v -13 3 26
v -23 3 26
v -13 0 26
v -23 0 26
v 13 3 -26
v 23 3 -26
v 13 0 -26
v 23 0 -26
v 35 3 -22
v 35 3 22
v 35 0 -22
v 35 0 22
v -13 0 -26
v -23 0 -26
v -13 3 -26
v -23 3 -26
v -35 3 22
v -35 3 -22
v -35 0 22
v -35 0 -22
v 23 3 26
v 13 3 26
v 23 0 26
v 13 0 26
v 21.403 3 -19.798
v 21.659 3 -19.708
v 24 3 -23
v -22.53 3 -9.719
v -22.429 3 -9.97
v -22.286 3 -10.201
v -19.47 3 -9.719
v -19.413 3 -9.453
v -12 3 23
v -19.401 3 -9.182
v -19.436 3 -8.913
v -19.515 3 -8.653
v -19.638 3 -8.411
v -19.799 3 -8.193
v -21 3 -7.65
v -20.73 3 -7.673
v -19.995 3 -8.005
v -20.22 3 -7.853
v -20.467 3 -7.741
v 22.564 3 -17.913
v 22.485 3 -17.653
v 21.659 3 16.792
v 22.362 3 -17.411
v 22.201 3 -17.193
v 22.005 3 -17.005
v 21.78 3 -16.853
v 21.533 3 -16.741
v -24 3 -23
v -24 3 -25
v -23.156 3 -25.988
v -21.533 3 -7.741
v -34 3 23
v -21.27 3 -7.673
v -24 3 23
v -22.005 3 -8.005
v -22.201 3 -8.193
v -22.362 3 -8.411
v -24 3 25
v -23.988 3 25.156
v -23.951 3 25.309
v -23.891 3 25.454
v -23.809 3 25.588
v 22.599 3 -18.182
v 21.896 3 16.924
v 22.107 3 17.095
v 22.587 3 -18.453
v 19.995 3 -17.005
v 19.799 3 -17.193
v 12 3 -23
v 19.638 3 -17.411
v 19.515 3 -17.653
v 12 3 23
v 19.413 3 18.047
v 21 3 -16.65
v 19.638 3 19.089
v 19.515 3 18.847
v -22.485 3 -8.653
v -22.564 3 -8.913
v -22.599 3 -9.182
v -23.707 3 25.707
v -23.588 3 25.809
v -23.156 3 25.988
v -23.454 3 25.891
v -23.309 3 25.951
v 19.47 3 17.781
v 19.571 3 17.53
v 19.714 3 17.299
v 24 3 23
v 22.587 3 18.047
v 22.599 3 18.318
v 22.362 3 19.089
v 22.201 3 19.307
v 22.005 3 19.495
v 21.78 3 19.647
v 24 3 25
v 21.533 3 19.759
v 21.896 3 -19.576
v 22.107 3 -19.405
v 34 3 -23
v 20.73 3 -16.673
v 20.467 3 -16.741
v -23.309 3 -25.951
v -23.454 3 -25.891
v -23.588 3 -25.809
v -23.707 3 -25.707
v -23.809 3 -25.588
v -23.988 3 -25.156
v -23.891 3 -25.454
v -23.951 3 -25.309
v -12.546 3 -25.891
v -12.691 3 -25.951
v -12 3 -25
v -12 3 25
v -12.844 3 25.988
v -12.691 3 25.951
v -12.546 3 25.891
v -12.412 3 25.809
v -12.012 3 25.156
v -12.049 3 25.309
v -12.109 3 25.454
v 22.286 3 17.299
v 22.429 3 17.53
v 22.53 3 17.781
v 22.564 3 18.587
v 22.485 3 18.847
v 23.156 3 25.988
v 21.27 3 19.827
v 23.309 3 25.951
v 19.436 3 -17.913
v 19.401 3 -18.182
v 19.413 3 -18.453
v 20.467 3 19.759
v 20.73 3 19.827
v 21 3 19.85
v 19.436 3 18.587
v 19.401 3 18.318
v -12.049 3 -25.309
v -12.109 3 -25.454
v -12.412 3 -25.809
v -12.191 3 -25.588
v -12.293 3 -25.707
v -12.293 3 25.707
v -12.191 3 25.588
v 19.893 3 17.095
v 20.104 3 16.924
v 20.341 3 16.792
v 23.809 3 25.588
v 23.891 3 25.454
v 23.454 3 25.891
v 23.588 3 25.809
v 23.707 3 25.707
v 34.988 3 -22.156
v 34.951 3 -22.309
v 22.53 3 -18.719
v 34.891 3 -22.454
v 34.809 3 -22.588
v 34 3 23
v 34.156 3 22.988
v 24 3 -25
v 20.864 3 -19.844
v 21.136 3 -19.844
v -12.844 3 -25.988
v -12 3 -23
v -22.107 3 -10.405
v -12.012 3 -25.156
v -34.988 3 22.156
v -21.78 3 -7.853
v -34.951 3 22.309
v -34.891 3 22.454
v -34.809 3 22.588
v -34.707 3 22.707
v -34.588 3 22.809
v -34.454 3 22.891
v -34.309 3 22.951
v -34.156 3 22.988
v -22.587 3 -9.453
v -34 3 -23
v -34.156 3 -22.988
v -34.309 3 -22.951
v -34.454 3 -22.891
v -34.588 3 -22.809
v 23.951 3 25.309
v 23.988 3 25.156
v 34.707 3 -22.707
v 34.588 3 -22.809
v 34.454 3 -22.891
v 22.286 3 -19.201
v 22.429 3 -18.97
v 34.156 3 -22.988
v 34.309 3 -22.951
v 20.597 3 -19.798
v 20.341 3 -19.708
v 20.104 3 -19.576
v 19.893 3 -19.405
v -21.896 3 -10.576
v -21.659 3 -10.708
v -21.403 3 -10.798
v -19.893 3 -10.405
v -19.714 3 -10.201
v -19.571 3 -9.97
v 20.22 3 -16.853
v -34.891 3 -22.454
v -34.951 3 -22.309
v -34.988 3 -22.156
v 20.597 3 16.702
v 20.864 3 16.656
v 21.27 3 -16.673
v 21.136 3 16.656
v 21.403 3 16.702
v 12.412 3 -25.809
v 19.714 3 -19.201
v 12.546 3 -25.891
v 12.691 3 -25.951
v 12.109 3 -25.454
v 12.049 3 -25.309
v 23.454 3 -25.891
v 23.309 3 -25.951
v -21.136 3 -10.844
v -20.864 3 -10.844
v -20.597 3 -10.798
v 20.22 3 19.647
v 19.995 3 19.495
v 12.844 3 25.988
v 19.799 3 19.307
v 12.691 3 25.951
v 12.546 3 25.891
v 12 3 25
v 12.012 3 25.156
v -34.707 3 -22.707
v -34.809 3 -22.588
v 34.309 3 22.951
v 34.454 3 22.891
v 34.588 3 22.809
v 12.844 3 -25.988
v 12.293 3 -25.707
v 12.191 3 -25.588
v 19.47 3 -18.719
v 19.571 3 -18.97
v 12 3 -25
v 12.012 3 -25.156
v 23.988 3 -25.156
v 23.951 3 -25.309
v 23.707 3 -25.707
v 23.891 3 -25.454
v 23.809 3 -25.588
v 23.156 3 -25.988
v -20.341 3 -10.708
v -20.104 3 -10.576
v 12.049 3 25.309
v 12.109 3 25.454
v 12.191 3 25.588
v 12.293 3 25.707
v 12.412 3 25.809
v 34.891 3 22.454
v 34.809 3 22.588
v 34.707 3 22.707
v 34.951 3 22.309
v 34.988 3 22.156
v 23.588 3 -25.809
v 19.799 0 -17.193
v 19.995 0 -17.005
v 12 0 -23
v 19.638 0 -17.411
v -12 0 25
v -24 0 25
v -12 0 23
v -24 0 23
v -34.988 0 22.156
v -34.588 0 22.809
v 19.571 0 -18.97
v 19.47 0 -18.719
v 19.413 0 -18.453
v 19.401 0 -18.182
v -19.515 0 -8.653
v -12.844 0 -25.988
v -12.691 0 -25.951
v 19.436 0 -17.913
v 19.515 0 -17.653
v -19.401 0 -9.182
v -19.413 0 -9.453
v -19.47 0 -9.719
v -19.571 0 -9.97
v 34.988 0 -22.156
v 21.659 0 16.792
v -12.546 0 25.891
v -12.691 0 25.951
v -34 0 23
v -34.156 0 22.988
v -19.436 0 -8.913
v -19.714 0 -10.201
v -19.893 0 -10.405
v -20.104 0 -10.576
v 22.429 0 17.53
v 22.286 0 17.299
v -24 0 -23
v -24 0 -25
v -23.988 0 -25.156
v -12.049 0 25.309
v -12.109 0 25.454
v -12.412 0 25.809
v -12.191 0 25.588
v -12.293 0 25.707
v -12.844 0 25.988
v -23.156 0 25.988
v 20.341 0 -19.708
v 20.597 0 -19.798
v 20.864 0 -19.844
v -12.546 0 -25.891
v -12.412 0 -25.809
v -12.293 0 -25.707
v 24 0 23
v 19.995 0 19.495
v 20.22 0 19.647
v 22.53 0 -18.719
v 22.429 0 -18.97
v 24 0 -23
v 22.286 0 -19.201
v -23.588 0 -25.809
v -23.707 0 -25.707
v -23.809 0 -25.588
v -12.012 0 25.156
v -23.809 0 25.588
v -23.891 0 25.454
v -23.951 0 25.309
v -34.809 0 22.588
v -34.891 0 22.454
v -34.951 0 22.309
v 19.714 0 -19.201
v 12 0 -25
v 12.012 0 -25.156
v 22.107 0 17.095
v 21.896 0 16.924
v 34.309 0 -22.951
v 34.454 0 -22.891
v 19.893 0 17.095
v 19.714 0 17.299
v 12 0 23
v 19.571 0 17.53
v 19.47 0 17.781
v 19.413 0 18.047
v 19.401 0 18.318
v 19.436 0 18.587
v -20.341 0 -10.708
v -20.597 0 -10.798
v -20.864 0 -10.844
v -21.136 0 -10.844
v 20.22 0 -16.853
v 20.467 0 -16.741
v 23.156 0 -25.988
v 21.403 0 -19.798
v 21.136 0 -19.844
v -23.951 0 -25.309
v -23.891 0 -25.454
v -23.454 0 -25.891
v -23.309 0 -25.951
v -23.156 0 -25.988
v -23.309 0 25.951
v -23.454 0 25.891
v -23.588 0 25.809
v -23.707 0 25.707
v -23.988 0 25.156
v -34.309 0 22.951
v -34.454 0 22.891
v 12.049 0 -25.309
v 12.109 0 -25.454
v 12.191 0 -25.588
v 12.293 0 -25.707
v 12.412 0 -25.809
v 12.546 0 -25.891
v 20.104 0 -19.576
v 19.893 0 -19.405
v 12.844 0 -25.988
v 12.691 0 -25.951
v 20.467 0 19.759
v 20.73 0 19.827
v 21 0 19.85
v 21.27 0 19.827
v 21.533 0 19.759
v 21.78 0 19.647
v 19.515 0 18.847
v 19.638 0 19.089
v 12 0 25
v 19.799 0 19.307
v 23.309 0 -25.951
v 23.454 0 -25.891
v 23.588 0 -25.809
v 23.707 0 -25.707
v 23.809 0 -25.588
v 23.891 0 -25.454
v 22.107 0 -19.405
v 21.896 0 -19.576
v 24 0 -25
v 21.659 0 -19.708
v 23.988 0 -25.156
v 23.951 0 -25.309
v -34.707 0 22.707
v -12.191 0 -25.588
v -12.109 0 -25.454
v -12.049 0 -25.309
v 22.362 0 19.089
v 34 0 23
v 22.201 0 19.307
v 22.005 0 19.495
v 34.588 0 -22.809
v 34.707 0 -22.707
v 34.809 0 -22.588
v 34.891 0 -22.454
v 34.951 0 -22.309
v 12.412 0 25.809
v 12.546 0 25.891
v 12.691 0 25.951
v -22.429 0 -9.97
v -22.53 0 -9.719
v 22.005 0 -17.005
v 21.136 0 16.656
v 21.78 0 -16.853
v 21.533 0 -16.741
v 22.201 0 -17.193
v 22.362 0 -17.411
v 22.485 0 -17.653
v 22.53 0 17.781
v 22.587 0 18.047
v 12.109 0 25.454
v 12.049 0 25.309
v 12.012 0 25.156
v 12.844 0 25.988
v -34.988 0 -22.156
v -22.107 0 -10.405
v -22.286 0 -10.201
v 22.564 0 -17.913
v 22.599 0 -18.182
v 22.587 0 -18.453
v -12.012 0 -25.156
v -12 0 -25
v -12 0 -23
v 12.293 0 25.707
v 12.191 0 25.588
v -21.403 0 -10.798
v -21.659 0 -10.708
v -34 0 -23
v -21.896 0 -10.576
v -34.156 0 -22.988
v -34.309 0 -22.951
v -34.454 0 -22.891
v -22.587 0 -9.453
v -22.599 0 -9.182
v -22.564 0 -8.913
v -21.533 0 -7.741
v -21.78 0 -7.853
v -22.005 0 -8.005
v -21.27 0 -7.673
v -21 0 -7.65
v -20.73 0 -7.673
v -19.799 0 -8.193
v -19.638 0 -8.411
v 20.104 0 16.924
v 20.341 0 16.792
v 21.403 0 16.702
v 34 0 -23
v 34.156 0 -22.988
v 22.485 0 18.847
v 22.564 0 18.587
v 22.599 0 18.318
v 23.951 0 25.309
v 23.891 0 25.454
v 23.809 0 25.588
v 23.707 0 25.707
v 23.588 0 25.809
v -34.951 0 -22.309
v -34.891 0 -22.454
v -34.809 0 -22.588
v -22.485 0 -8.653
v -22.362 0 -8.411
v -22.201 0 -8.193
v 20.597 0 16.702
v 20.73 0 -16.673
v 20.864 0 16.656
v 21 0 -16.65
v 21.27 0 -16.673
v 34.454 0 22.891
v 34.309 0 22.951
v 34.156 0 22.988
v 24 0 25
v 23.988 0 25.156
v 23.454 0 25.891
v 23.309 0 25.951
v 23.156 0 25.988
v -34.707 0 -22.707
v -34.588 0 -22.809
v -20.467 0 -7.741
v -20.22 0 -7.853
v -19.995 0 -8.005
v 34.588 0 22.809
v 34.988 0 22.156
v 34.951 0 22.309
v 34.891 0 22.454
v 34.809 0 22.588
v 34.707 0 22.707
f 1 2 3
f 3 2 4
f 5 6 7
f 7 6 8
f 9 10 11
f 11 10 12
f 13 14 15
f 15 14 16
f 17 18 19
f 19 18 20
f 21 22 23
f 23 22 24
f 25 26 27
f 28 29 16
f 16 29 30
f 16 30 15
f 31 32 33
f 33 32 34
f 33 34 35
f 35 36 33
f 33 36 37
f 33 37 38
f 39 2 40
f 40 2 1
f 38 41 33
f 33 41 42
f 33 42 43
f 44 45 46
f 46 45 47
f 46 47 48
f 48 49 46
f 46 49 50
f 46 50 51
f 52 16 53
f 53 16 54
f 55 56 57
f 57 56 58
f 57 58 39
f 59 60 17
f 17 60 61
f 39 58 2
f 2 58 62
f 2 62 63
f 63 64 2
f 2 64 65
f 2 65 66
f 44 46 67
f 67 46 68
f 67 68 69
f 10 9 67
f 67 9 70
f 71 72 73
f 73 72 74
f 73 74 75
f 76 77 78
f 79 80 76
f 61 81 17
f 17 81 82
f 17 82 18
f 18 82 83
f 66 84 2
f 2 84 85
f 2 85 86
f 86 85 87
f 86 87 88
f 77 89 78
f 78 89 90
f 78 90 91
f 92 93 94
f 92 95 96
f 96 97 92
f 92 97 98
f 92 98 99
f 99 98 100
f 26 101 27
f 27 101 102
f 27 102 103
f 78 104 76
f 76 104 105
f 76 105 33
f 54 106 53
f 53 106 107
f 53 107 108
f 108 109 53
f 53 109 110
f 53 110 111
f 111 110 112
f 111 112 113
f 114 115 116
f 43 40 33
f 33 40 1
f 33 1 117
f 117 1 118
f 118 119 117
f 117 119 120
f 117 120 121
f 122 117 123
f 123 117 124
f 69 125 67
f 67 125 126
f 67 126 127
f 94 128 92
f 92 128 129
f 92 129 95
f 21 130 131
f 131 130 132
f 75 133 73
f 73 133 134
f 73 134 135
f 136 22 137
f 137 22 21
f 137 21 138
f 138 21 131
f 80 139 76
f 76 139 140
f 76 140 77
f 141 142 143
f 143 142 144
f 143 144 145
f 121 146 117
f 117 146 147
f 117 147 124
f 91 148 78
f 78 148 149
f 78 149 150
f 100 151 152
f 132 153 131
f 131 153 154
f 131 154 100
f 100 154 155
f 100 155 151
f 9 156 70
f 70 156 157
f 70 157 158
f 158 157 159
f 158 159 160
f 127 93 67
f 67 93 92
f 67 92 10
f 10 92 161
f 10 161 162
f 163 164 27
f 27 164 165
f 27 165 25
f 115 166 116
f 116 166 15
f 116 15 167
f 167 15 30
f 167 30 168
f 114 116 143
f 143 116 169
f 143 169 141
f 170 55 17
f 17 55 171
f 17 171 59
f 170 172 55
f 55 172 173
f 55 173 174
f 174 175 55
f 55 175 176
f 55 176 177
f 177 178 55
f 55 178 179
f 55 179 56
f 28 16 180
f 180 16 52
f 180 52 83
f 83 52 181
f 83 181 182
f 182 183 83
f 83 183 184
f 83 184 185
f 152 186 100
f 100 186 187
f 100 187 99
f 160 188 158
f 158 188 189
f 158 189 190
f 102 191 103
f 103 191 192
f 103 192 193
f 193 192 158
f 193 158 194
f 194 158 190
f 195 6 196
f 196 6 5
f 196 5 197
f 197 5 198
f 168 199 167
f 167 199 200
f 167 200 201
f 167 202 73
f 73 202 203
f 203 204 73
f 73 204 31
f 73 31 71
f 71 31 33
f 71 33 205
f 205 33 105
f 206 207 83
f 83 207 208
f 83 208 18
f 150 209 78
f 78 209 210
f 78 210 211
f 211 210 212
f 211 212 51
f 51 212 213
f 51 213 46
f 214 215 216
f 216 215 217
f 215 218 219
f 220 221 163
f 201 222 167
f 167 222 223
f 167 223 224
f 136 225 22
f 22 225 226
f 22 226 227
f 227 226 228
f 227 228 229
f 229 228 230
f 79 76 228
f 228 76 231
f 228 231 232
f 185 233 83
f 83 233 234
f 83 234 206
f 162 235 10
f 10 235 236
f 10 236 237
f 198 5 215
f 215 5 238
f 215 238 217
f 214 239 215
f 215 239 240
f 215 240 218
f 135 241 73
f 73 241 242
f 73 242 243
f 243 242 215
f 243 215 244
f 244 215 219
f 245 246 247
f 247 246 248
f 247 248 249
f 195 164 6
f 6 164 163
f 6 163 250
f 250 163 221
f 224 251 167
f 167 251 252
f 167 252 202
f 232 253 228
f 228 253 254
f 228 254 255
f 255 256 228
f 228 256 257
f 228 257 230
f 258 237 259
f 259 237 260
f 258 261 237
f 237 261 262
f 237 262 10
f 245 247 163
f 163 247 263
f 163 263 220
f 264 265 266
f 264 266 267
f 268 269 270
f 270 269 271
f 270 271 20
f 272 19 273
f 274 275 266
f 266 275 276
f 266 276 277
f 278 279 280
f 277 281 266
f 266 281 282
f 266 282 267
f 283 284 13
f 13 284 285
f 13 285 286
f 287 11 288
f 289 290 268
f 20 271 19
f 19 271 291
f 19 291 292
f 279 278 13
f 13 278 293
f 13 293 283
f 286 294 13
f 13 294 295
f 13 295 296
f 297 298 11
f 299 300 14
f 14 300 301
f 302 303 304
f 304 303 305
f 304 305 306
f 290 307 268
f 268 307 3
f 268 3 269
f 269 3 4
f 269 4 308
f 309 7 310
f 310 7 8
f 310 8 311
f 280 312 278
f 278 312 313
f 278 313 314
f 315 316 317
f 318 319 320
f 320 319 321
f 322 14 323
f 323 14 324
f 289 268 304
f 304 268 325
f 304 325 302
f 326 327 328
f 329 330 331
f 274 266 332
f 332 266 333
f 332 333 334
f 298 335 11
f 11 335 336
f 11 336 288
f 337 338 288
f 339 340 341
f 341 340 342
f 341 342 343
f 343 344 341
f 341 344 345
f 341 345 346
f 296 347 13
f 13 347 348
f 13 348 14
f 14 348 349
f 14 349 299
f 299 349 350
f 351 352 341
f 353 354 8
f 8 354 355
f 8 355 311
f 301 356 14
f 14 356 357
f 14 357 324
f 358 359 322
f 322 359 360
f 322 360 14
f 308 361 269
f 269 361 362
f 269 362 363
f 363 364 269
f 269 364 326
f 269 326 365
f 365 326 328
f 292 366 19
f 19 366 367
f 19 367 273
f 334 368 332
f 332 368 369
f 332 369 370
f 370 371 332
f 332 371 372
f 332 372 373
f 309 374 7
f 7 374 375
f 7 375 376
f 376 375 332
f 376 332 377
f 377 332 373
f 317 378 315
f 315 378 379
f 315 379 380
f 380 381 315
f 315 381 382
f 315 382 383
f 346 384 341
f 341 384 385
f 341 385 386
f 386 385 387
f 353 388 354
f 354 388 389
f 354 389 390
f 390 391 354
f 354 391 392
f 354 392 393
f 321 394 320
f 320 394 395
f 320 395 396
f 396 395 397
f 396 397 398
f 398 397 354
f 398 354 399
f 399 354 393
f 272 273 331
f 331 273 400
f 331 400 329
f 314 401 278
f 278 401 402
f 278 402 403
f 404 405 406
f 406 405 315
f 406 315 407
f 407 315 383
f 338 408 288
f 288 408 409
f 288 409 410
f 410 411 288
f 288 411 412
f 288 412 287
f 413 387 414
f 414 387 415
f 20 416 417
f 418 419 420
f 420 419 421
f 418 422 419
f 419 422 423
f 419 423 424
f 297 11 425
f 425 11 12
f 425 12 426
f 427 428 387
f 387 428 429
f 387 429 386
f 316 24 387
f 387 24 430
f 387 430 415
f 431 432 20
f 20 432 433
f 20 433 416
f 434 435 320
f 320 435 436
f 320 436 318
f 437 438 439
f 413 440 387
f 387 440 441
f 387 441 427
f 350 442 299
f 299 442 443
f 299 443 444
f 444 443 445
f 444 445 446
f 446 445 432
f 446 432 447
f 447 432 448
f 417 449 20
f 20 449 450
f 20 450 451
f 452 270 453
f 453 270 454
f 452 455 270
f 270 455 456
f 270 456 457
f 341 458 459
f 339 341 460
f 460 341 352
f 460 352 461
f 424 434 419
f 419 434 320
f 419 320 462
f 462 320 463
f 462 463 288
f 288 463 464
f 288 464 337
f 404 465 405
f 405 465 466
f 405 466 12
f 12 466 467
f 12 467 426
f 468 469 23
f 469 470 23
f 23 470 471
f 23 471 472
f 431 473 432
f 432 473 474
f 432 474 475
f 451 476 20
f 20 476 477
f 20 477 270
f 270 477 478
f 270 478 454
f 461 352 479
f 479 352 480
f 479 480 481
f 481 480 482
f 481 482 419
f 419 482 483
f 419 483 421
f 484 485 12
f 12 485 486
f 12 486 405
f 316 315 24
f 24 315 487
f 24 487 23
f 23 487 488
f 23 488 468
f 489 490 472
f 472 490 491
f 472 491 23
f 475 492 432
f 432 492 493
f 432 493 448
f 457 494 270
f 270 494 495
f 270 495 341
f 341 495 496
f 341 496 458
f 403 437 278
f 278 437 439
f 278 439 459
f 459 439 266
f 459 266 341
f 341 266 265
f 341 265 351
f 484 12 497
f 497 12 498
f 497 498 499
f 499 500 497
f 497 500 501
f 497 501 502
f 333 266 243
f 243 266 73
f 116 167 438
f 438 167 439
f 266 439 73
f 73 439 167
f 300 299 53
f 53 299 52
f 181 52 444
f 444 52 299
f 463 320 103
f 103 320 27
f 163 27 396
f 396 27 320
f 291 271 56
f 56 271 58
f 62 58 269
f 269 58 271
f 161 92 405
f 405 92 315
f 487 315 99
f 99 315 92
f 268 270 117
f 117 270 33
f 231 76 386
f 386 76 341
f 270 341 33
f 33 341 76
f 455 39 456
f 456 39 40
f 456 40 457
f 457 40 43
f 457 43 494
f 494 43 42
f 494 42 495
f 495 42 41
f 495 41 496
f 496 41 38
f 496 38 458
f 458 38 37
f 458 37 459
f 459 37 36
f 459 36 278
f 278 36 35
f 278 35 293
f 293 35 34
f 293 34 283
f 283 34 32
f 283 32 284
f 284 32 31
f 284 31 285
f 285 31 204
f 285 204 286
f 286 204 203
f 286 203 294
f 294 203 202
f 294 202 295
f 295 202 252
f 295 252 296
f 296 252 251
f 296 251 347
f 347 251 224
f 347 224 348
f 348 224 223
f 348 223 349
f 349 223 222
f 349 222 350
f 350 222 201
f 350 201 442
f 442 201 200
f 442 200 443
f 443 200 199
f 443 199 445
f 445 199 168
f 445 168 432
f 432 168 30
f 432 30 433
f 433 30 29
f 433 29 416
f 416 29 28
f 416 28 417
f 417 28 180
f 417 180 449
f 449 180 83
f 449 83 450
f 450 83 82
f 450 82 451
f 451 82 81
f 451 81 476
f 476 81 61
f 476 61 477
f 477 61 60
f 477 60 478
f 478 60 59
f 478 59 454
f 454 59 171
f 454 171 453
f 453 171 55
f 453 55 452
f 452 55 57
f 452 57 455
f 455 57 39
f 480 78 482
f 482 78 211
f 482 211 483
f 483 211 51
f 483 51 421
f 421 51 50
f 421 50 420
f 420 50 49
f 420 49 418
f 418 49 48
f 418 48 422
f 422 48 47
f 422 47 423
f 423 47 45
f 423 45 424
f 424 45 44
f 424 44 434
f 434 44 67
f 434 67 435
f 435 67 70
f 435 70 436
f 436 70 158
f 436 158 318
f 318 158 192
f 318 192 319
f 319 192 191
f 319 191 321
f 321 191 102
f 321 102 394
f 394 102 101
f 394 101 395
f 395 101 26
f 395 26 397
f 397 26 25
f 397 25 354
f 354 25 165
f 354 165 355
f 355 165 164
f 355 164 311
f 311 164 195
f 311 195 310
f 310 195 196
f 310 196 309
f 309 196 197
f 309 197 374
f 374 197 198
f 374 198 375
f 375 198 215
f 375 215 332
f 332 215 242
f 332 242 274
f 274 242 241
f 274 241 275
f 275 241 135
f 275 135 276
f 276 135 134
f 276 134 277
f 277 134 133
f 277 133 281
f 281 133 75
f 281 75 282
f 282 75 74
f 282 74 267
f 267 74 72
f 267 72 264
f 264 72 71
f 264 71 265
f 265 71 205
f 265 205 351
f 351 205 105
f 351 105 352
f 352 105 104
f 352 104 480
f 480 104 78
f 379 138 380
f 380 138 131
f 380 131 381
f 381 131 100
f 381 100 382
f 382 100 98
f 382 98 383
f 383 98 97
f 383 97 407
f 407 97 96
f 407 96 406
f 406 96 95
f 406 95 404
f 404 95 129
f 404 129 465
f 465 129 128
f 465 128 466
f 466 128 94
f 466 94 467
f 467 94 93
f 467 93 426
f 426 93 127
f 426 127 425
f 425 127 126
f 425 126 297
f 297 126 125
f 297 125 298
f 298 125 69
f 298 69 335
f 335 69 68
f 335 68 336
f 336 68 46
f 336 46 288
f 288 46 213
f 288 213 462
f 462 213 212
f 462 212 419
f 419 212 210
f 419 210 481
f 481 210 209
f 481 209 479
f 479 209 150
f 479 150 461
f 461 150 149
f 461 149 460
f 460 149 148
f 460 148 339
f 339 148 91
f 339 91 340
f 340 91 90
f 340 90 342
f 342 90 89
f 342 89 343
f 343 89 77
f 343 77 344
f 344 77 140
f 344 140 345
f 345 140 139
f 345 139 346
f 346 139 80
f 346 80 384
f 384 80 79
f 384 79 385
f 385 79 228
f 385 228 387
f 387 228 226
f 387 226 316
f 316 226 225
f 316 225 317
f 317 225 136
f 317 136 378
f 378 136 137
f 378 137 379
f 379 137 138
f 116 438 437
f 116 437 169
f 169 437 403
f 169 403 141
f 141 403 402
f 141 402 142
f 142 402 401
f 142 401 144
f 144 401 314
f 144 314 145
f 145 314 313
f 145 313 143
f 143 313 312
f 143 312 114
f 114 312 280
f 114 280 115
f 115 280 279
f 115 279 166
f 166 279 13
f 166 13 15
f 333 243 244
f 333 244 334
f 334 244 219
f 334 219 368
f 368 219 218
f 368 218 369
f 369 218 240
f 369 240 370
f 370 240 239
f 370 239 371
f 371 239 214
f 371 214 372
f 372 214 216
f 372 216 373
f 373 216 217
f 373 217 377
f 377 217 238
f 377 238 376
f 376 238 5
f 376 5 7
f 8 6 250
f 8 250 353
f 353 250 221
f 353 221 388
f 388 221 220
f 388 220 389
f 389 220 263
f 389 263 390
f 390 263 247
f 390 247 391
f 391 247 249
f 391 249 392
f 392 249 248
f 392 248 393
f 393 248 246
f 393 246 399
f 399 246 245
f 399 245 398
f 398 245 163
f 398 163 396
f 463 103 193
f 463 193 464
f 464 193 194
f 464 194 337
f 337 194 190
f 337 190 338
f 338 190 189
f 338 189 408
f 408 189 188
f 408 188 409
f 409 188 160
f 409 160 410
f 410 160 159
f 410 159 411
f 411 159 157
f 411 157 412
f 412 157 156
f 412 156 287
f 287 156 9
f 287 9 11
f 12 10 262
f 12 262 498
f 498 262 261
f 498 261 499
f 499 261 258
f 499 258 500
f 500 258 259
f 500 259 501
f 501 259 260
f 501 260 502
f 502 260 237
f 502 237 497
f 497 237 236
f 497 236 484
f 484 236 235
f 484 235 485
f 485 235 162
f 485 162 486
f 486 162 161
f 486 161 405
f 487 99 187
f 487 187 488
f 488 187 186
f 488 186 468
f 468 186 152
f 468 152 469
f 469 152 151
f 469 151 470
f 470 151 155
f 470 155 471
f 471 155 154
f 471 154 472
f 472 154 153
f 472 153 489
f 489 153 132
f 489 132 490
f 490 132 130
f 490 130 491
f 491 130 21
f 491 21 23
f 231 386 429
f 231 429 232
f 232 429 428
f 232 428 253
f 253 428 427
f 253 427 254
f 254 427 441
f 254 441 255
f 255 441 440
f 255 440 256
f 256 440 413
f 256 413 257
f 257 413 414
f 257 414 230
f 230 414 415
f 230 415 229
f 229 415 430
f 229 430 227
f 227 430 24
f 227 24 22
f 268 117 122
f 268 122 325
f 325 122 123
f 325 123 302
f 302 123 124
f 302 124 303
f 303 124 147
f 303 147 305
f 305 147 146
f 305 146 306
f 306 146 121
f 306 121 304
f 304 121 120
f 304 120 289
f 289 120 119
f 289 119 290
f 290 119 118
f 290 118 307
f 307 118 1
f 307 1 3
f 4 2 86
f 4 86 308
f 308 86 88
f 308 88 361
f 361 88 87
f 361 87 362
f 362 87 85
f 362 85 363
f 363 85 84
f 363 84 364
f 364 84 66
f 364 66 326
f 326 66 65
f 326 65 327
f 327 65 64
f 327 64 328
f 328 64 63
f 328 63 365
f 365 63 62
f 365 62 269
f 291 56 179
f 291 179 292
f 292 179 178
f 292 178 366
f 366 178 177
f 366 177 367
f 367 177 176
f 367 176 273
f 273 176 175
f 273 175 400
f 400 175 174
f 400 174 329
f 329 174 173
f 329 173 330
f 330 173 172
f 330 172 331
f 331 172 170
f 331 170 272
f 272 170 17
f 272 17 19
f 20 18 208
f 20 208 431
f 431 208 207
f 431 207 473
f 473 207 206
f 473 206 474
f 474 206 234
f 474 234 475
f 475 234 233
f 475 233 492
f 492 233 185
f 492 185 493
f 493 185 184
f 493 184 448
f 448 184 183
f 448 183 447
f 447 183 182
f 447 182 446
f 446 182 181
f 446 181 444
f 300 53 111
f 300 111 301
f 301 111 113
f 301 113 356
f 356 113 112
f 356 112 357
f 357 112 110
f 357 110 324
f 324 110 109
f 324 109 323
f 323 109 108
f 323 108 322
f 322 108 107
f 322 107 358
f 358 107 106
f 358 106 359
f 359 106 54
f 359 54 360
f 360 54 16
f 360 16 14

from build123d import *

# Parameters (mm, degrees)
SKETCH_1_W          = 70
SKETCH_1_H          = 52
EXTRUDE_1_DEPTH     = 3
SKETCH_2_R          = 1.6
SKETCH_2_W          = 24
SKETCH_2_H          = 6
SKETCH_2_W_2        = 11
SKETCH_2_H_2        = 3
CUT_EXTRUDE_1_DEPTH = 4
FILLET_1_R          = 1


with BuildPart() as part:
    # 草图1 → 凸台-拉伸1 (new body)
    with BuildSketch(Plane(origin=(0, 0, 0), x_dir=(1, 0, 0), z_dir=(0, 1, 0))):
        Rectangle(SKETCH_1_W, SKETCH_1_H)
    extrude(amount=EXTRUDE_1_DEPTH)

    # 草图2 → 切除-拉伸1 (cut, through all)
    with BuildSketch(Plane(origin=(0, 3, 0), x_dir=(1, 0, 0), z_dir=(0, 1, 0))):
        with Locations((-21, 9.25)):
            Circle(SKETCH_2_R)
        with Locations((21, 18.25)):
            Circle(SKETCH_2_R)
        with Locations((21, -18.25)):
            Circle(SKETCH_2_R)
        with Locations((0, 26)):
            Rectangle(SKETCH_2_W, SKETCH_2_H)
        with Locations((-29.5, 24.5)):
            Rectangle(SKETCH_2_W_2, SKETCH_2_H_2)
        with Locations((29.5, 24.5)):
            Rectangle(SKETCH_2_W_2, SKETCH_2_H_2)
        with Locations((-29.5, -24.5)):
            Rectangle(SKETCH_2_W_2, SKETCH_2_H_2)
        with Locations((29.5, -24.5)):
            Rectangle(SKETCH_2_W_2, SKETCH_2_H_2)
        with Locations((0, -26)):
            Rectangle(SKETCH_2_W, SKETCH_2_H)
    extrude(amount=-CUT_EXTRUDE_1_DEPTH, mode=Mode.SUBTRACT)

    # 圆角1
    fillet_1_edges = [part.edges().sort_by_distance(p)[0] for p in [
        (12, 1.5, -26),
        (-12, 1.5, -26),
        (-35, 1.5, -23),
        (-24, 1.5, -26),
        (35, 1.5, -23),
        (24, 1.5, -26),
        (-35, 1.5, 23),
        (-24, 1.5, 26),
        (35, 1.5, 23),
        (24, 1.5, 26),
        (-12, 1.5, 26),
        (12, 1.5, 26),
    ]]
    fillet(fillet_1_edges, radius=FILLET_1_R)


solid = part.part
